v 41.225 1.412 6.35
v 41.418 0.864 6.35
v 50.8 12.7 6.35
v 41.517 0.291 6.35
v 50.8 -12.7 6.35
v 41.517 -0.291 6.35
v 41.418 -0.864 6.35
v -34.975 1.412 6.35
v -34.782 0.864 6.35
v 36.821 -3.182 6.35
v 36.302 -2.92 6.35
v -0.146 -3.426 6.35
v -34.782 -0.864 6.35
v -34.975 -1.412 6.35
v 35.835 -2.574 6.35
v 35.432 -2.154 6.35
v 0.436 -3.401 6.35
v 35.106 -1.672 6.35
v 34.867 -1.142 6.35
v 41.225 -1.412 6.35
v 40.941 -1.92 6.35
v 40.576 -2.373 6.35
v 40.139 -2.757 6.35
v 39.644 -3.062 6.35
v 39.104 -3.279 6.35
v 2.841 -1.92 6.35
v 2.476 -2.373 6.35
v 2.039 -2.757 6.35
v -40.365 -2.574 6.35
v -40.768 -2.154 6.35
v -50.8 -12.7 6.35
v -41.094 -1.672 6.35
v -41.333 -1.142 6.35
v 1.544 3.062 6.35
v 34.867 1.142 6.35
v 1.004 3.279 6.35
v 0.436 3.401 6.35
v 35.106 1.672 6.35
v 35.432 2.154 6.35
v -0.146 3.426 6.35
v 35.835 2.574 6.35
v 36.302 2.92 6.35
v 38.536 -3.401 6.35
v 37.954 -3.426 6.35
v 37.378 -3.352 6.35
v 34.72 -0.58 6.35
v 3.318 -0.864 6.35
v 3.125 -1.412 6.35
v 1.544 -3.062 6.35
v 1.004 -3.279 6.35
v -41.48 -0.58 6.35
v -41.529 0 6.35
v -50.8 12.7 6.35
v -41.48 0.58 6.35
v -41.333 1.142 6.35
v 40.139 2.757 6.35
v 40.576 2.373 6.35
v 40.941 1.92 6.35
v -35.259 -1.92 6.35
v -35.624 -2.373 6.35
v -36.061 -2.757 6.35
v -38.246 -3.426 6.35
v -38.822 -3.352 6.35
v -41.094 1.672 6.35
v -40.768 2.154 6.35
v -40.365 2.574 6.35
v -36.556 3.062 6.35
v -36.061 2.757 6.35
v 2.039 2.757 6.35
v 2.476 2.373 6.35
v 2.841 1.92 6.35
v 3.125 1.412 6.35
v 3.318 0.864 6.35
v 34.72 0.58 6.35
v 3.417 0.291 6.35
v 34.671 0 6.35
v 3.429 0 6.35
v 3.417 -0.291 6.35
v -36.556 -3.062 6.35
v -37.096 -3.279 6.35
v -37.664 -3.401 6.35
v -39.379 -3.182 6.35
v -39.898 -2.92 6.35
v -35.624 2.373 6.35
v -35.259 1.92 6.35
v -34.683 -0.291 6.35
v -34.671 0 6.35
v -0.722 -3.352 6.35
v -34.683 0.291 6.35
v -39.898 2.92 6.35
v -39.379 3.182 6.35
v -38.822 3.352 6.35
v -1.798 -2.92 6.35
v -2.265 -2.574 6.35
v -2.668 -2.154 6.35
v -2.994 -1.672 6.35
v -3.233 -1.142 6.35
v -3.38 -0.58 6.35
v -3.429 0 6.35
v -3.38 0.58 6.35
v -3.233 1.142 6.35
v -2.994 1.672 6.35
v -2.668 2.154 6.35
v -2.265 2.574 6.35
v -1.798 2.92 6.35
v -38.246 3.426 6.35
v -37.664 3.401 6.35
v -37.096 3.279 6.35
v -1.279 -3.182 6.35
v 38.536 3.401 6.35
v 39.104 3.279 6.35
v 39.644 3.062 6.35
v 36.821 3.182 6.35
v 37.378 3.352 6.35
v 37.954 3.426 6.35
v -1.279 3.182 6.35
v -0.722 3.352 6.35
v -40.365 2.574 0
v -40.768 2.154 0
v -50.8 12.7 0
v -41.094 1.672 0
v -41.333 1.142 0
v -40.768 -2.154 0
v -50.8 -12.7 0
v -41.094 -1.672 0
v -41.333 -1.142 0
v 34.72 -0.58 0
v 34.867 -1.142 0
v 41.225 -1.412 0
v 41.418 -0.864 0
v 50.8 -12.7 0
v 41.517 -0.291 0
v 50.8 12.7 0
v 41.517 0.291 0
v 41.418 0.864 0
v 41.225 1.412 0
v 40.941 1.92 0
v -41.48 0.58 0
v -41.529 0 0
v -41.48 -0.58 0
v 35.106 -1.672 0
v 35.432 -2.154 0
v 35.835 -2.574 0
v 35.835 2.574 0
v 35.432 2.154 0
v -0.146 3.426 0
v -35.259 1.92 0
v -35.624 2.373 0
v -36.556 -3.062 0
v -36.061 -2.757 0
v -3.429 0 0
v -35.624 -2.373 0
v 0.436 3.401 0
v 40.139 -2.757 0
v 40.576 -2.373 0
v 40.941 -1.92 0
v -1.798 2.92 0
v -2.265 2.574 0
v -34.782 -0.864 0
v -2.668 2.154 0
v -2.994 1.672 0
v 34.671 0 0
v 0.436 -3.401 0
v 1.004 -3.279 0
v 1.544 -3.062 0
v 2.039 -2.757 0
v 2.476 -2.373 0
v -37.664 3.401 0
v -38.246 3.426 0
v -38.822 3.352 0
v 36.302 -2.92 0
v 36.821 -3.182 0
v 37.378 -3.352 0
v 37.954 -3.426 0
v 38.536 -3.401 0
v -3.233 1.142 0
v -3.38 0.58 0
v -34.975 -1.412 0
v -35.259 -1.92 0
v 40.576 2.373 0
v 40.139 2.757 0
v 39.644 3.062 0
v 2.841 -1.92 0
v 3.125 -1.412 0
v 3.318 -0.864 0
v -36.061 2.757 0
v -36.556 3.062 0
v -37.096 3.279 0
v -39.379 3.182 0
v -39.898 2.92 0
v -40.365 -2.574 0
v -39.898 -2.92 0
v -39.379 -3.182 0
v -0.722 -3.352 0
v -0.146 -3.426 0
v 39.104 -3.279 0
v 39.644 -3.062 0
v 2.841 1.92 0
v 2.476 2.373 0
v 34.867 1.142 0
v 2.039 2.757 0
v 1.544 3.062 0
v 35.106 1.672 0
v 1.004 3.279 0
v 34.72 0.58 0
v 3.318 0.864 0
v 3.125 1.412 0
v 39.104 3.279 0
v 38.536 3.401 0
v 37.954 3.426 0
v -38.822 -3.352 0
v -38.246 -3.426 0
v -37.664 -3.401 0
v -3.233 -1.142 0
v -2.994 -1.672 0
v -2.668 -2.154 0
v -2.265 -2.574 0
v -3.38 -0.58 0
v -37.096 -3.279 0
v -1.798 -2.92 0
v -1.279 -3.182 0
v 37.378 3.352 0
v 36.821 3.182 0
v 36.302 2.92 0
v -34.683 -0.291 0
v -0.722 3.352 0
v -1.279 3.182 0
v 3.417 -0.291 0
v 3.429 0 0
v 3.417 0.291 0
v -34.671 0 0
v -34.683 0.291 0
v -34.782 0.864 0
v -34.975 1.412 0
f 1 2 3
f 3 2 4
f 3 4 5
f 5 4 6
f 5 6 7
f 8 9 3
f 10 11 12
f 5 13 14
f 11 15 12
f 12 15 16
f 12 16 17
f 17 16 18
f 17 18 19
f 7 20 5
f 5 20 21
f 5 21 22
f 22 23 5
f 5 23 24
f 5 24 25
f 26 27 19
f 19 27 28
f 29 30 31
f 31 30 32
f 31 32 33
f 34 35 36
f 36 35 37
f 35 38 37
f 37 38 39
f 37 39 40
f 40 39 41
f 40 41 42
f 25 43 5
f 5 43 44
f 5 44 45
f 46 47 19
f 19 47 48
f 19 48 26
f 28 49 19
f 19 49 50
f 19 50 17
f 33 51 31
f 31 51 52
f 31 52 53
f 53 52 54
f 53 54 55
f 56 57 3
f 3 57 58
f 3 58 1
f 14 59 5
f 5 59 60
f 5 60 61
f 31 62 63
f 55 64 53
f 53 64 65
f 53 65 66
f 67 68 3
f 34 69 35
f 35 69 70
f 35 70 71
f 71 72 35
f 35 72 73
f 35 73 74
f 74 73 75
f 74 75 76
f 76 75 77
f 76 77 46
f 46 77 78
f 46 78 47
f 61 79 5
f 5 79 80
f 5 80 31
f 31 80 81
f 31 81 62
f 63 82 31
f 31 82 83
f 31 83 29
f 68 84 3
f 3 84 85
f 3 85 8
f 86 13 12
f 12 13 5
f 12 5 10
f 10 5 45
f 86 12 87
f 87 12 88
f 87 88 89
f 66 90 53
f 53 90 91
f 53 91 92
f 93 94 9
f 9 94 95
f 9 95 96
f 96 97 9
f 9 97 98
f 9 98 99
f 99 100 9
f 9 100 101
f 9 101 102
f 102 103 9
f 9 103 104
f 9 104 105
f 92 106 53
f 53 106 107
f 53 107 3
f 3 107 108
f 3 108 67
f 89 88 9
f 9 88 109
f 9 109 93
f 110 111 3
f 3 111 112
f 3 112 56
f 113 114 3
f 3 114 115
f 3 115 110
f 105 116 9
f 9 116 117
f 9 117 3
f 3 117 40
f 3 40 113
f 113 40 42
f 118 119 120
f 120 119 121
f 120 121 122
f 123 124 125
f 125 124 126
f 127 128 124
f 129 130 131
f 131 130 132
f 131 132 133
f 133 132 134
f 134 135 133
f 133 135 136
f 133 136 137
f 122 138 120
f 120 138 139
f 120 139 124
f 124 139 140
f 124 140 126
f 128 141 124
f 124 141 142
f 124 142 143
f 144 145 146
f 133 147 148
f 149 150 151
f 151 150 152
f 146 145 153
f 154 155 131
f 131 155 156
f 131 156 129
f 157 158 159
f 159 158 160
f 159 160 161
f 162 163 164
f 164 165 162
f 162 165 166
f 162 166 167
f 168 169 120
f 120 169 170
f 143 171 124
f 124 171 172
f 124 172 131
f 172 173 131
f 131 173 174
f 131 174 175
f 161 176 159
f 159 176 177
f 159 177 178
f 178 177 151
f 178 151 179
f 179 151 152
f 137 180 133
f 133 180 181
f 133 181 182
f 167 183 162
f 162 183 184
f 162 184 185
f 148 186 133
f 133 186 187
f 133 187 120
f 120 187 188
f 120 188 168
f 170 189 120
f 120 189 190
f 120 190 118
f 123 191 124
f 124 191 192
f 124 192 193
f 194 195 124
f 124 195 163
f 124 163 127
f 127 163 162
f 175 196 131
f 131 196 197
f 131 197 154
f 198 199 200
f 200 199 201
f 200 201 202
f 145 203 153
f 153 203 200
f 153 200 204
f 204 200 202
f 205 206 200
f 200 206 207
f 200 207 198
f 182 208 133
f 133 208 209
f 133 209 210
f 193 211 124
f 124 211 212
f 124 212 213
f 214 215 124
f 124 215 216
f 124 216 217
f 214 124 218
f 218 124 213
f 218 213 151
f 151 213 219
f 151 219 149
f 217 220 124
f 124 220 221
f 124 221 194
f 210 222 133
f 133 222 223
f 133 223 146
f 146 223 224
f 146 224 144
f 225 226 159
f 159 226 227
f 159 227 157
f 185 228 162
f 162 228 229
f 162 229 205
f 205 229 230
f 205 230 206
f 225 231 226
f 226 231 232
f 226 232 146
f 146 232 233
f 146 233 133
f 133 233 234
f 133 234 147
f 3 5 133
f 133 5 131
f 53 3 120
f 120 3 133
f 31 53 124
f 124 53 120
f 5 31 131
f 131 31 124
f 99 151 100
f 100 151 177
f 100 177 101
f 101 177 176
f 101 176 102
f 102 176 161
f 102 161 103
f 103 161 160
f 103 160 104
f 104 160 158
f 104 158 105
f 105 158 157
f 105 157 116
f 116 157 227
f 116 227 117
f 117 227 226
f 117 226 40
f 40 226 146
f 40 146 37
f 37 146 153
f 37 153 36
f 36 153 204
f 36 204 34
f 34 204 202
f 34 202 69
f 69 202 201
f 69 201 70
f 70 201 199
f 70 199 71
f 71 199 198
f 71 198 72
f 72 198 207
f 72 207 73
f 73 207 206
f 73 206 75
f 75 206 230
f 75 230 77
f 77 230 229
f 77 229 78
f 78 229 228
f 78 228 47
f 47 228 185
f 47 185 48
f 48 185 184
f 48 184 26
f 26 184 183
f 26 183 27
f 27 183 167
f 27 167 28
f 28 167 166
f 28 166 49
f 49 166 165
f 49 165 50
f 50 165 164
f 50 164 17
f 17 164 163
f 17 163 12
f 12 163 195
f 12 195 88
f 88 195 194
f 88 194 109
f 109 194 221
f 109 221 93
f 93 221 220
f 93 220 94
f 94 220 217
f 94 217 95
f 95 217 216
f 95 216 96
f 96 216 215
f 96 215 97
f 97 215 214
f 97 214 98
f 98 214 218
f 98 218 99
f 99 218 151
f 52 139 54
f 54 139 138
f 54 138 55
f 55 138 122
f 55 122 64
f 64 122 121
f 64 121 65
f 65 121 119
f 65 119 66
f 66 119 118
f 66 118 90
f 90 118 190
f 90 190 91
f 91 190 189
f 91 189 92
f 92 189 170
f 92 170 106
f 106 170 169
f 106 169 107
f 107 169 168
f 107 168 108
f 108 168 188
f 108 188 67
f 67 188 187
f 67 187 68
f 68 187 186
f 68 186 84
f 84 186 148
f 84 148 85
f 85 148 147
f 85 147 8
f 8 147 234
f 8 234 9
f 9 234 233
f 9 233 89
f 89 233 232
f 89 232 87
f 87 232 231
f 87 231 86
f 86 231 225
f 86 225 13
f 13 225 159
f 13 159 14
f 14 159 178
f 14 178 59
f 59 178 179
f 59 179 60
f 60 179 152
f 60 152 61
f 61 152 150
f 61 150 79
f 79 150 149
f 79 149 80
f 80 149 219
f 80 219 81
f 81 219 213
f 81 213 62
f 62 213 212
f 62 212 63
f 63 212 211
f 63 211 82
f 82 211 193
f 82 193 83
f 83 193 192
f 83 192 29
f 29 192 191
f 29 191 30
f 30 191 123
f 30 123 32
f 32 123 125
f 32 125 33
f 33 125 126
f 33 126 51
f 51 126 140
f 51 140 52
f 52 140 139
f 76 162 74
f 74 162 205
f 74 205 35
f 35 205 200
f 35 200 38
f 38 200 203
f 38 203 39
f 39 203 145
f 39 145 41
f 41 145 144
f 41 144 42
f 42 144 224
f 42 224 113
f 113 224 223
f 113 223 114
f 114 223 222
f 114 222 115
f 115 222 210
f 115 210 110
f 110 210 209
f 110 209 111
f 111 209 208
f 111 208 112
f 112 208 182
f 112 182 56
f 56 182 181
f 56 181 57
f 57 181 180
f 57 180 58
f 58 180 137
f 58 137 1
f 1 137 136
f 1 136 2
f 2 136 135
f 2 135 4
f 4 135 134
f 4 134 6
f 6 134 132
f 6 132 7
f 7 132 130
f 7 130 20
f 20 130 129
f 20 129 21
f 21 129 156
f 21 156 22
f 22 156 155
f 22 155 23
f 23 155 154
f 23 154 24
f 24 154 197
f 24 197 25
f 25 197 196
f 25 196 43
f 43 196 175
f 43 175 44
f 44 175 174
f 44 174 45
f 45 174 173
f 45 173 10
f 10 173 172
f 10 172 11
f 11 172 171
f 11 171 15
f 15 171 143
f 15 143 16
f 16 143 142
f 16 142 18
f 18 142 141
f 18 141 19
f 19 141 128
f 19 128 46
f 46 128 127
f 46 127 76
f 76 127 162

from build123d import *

# Parameters (mm, degrees)
SKETCH1_W           = 101.6
SKETCH1_H           = 25.4
SKETCH1_R           = 3.429
BOSS_EXTRUDE1_DEPTH = 6.35


with BuildPart() as part:
    # Sketch1 → Boss-Extrude1 (new body)
    with BuildSketch(Plane.XY):
        Rectangle(SKETCH1_W, SKETCH1_H)
        Circle(SKETCH1_R, mode=Mode.SUBTRACT)
        with Locations((-38.1, 0)):
            Circle(SKETCH1_R, mode=Mode.SUBTRACT)
        with Locations(Location((38.1, 0, 0), (0, 0, 180))):
            Circle(SKETCH1_R, mode=Mode.SUBTRACT)
    extrude(amount=BOSS_EXTRUDE1_DEPTH)


solid = part.part
